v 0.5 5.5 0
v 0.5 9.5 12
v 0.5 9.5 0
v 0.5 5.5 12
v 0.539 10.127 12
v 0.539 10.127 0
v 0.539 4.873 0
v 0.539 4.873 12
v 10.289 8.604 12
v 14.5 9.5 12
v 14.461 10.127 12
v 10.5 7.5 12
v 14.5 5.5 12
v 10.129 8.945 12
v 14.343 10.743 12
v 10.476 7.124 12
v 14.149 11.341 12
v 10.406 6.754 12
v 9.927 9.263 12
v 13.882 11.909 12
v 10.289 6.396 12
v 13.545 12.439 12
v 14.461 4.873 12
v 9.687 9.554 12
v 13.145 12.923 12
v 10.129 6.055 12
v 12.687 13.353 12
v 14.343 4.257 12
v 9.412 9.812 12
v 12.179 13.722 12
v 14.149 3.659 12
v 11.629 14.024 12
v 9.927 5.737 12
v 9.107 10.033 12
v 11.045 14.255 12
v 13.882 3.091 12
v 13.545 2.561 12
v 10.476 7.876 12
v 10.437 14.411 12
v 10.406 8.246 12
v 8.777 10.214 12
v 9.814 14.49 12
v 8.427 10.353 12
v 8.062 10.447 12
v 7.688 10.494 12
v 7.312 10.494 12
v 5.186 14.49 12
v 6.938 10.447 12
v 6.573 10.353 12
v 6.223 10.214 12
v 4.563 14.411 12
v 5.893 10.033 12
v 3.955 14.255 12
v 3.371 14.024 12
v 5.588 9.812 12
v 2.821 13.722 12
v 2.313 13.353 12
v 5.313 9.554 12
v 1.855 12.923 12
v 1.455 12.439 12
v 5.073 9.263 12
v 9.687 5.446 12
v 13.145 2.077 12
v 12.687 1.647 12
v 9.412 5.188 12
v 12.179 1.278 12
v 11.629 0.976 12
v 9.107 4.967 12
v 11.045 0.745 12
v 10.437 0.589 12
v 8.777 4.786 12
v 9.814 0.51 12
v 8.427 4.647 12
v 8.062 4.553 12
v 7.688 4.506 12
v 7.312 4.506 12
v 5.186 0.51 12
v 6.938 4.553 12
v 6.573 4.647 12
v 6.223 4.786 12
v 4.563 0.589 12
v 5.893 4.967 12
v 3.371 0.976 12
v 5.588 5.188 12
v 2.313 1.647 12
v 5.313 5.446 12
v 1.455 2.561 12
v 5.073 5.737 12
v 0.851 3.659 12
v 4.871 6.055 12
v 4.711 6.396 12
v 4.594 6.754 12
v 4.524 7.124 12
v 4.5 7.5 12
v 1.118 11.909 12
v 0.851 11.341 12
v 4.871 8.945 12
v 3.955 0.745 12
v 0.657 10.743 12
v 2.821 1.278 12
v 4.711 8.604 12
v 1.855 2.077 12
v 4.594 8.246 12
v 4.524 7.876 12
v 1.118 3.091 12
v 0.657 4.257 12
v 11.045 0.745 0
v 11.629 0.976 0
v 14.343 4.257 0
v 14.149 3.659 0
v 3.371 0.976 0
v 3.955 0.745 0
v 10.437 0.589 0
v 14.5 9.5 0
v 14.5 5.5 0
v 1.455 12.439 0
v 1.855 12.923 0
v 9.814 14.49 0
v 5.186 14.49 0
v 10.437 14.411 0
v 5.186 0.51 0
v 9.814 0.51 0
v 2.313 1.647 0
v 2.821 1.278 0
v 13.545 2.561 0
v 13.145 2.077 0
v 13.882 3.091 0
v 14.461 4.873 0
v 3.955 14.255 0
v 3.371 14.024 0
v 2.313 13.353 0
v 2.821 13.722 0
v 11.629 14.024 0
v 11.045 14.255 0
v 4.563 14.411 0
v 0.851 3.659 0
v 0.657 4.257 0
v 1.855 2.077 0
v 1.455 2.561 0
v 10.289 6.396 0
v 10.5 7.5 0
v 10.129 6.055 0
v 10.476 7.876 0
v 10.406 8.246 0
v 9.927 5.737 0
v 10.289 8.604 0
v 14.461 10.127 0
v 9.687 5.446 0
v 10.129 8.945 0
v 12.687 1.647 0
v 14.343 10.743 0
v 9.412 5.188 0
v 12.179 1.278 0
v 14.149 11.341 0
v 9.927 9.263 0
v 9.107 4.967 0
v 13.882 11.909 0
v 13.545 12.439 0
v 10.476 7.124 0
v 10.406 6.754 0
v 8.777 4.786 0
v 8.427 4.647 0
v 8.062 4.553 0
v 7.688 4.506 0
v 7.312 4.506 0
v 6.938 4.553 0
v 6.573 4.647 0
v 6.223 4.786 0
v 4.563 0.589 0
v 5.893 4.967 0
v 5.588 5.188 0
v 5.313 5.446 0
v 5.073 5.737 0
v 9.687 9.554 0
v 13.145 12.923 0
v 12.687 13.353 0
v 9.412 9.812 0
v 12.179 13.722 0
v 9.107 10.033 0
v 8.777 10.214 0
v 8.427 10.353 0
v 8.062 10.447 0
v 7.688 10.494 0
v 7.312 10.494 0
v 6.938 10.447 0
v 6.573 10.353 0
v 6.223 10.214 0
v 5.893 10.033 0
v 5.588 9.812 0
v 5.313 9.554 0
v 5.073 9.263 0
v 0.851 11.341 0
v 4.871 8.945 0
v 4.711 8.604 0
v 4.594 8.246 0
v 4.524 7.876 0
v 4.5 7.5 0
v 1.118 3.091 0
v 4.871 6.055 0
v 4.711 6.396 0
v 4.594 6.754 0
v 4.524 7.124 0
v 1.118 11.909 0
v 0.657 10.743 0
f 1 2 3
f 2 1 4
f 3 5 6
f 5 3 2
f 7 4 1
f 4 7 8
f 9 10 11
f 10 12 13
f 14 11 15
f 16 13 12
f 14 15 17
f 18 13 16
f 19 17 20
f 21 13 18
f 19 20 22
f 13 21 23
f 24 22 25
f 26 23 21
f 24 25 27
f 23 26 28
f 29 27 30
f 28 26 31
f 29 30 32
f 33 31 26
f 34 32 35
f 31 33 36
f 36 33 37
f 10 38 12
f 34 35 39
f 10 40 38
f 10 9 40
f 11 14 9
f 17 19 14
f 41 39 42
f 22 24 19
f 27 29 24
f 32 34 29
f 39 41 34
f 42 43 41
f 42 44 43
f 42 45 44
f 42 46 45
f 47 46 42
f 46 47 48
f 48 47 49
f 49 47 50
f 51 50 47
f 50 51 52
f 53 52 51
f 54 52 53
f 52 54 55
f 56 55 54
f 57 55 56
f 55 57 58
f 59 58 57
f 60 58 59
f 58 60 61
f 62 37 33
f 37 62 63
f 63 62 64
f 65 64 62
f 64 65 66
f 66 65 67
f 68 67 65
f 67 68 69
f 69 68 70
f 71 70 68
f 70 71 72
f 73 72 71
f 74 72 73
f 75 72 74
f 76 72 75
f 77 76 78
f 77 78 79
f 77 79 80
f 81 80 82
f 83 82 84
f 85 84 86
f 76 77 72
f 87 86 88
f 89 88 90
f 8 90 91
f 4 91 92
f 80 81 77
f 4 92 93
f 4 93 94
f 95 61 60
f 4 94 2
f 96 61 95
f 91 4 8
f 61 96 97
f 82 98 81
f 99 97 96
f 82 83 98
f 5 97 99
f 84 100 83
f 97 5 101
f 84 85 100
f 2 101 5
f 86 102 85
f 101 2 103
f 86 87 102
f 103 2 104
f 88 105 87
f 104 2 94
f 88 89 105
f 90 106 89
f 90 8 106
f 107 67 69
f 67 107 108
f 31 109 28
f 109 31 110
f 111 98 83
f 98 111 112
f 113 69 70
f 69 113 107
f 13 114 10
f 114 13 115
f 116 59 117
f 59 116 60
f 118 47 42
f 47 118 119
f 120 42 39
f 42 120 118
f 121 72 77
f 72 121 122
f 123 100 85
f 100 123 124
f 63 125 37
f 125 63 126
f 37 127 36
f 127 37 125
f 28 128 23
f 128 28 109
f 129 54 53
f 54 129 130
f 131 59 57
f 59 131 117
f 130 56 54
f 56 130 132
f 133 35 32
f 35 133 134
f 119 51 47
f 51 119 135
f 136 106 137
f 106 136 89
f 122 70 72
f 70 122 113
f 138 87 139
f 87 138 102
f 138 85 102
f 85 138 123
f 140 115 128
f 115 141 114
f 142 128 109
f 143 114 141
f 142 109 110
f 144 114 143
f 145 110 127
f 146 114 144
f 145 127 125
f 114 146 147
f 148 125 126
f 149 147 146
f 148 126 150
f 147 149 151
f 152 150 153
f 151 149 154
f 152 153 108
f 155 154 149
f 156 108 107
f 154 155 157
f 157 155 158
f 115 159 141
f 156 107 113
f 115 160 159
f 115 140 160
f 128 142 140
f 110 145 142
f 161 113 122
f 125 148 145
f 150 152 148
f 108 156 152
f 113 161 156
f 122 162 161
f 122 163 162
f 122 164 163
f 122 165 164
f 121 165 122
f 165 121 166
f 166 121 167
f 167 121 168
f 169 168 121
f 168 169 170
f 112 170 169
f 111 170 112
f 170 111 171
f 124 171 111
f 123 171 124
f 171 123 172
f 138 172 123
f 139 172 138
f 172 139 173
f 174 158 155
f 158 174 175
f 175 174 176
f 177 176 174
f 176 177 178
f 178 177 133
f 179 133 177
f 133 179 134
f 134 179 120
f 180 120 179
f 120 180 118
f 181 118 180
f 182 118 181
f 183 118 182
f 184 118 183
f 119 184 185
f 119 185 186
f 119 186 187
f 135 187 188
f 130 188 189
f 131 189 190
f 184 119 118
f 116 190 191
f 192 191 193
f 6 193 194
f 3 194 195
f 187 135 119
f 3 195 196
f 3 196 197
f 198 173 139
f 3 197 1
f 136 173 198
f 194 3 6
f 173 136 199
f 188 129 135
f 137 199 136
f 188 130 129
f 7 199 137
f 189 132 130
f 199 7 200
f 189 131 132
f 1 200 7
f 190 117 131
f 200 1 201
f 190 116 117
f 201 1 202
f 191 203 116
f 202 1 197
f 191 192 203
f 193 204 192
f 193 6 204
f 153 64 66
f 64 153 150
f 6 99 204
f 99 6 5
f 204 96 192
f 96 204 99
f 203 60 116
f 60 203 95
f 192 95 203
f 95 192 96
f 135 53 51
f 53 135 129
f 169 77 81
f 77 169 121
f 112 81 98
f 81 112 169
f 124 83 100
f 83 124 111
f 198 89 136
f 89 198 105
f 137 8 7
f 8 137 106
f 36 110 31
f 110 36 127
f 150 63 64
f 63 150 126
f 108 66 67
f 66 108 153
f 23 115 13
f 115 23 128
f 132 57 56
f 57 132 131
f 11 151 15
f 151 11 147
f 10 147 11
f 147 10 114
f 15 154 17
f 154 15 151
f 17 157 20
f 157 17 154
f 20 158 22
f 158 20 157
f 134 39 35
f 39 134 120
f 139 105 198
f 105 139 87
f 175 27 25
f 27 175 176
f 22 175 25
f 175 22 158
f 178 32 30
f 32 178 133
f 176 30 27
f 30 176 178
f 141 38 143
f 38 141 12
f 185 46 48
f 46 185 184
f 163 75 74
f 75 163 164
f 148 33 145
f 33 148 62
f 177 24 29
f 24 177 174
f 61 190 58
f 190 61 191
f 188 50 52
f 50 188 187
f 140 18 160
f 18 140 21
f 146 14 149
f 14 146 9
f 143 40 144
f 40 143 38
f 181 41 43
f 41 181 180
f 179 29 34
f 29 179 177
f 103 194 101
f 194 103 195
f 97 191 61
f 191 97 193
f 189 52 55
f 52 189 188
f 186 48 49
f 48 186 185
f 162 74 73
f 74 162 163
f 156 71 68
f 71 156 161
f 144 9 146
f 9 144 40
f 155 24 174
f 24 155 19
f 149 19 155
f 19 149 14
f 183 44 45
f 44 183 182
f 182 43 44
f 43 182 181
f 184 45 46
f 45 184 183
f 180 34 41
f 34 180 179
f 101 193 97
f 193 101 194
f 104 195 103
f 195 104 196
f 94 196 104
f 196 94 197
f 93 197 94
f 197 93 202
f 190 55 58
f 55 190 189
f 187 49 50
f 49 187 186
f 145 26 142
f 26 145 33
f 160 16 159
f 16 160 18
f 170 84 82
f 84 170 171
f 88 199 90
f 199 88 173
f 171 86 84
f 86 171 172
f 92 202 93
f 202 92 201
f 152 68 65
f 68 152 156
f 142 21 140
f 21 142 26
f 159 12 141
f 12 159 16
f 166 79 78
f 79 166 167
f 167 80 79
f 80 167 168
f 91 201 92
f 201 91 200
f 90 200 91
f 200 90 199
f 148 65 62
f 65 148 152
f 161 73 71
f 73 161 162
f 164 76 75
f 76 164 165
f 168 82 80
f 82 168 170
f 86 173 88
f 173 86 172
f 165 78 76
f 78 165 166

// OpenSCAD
// Generated by SolidPython 1.1.3 on 2023-01-09 15:31:28
$fn = 50;


difference() {
	union() {
		translate(v = [7.5000000000, 7.5000000000, 0]) {
			rotate(a = [0, 0, 0]) {
				hull() {
					translate(v = [-2.0000000000, 2.0000000000, 0]) {
						rotate(a = [0, 0, 0]) {
							translate(v = [0, 0, 0]) {
								rotate(a = [0, 0, 0]) {
									cylinder(h = 12, r = 5);
								}
							}
						}
					}
					translate(v = [2.0000000000, 2.0000000000, 0]) {
						rotate(a = [0, 0, 0]) {
							translate(v = [0, 0, 0]) {
								rotate(a = [0, 0, 0]) {
									cylinder(h = 12, r = 5);
								}
							}
						}
					}
					translate(v = [-2.0000000000, -2.0000000000, 0]) {
						rotate(a = [0, 0, 0]) {
							translate(v = [0, 0, 0]) {
								rotate(a = [0, 0, 0]) {
									cylinder(h = 12, r = 5);
								}
							}
						}
					}
					translate(v = [2.0000000000, -2.0000000000, 0]) {
						rotate(a = [0, 0, 0]) {
							translate(v = [0, 0, 0]) {
								rotate(a = [0, 0, 0]) {
									cylinder(h = 12, r = 5);
								}
							}
						}
					}
				}
			}
		}
	}
	union() {
		translate(v = [7.5000000000, 7.5000000000, 0]) {
			rotate(a = [0, 0, 0]) {
				translate(v = [0, 0, -50]) {
					rotate(a = [0, 0, 0]) {
						cylinder(h = 100, r = 3.0000000000);
					}
				}
			}
		}
	}
}
/***********************************************
*********      SolidPython code:      **********
************************************************
 
from solid import *
import os
import subprocess

import oomB

import opsc_library_gen

mode = "laser"
#mode = "3d_print"

defined_objects = {}

radius_dict = {}
countersunk_dict = {}


def set_mode(m):
    global mode
    mode = m
    radius_dict['M6'] = 6.5/2
    radius_dict['M3'] = 3.3/2
    if mode == "laser":
        radius_dict['M6'] = 6/2
        radius_dict['M3'] = 3/2

    countersunk_dict['M3'] = {}
    countersunk_dict['M3']['little_rad'] = radius_dict['M3']
    countersunk_dict['M3']['big_rad'] = (5.5+0.6)/2
    if mode == "laser":
        countersunk_dict['M3']['big_rad'] = (4.75+0.6)/2
        countersunk_dict['M3']['little_rad'] = (4.75+0.6)/2

    countersunk_dict['M3']['height'] = 1.7


def opsc_make_object(filename, objects, save_type="none",resolution=50, layers = 1, tilediff = 200, mode="laser"):
    set_mode(mode)
    save_type = save_type.lower()
    os.makedirs(os.path.dirname(filename), exist_ok=True)
    final_object = opsc_get_object(objects)
    # Save the final object to the specified filename    
    scad_render_to_file(final_object, filename, file_header='$fn = %s;' % resolution, include_orig_code=True)
    if mode == "laser":
        filename_laser = filename.replace(".scad","-flat.scad")
        scad_render_to_file(getLaser(final_object, layers=layers, tilediff=tilediff), filename_laser, file_header='$fn = %s;' % resolution, include_orig_code=True)
        if save_type == "all":
            saveToAll(filename_laser)
        elif save_type == "dxf":
            saveToDxf(filename_laser)
    if save_type == "all":
        saveToAll(filename)
    elif save_type == "dxf":
        saveToDxf(filename)


def opsc_get_object(objects):
    # Create the solidpython objects
    positive_objects = [get_opsc_item(obj) for obj in objects if obj['type'] == 'positive']
    negative_objects = [get_opsc_item(obj) for obj in objects if obj['type'] == 'negative']
    # Union the positive objects
    positive_object = union()(*positive_objects)
    # Union the negative objects
    negative_object = union()(*negative_objects)
    # Create the final object by subtracting the negative objects from the positive objects
    return difference()(positive_object, negative_object)

def get_opsc_item(params):
    # A dictionary to map radius string values to numerical values
    #radius_dict = {'small': 5, 'medium': 10, 'large': 15}
    # An array of function names for basic shapes
    basic_shapes = ['cube', 'sphere', 'cylinder']
    
    # An array of function names for other shapes
    other_shapes = ['hole', 'slot', 'rounded_rectangle', 'countersunk']
    


    # Convert radius to r if present, and remove radius from the params dictionary
    if 'radius' in params:
        if isinstance(params['radius'], str):
            # Use the radius_dict to map the radius string value to a numerical value
            params['r'] = radius_dict[params['radius']]
        else:
            params['r'] = params['radius']
        del params['radius']
    

    # Check if the object type is a basic shape
    if params['shape'] in basic_shapes:
        # Remove shape and unexpected dictionary values
        allowed_keys = {'size', 'r', 'r1', 'r2', 'd', 'h', 'rw', 'rh', 'dw', 'dh'}
        shape_params = {k: v for k, v in params.items() if k in allowed_keys}

        # Call the corresponding function for the shape parameter, using ** notation to pass the shape_params dictionary as keyword arguments
        return get_opsc_transform(params,globals()[params['shape']](**shape_params))
    
    # If the object type is not a basic shape, check if it's a defined object or one of the other shapes
    elif params['shape'] in other_shapes:
        # Call the corresponding function for the shape parameter, passing the params dictionary as an argument
        p2 = copy.deepcopy(params)
        p2["pos"] = [0,0,0]
        return get_opsc_transform(params,globals()[params['shape']](p2))
    
    # If the object is not a basic shape or a defined object, try to import it from a .scad file
    else:
        obj = defined_objects[params['shape']]
        return get_opsc_transform(params,obj)

def get_opsc_transform(params, solid_obj):
    # Rotate the object based on the 'rot' field in the params dictionary, or the 'rotX', 'rotY', and 'rotZ' fields if 'rot' is not present
    rot = params.get('rot', [])
    if rot:
        rotX, rotY, rotZ = rot
    else:
        rotX = params.get('rotX', 0)
        rotY = params.get('rotY', 0)
        rotZ = params.get('rotZ', 0)
    solid_obj = rotate([rotX, rotY, rotZ])(solid_obj)

    # Translate the object based on the 'pos' field in the params dictionary, or the 'x', 'y', and 'z' fields if 'pos' is not present
    pos = params.get('pos', [])
    if pos:
        x, y, z = pos
    else:
        x = params.get('x', 0)
        y = params.get('y', 0)
        z = params.get('z', 0)
    solid_obj = translate([x, y, z])(solid_obj)
    return solid_obj


import random

def opsc_easy_array(type, shape, repeats, pos_start, shift_arr, **kwargs):
    for i in range(0,3):
        repeats.append(1)
        pos_start.append(0)
        shift_arr.append(0)
    return_objects = []

    for x in range(0,repeats[0]):
        for y in range(0,repeats[1]):
            for z in range(0,repeats[2]):
                return_objects.append(opsc_easy(type, shape, pos=[pos_start[0]+x*shift_arr[0],pos_start[1]+y*shift_arr[1],pos_start[2]+z*shift_arr[2]], **kwargs))
    return return_objects                



def opsc_easy(type, shape, **kwargs):
    obj = {
        'type': type,
        'shape': shape
    }
    for param in ['size', 'r', 'r1', 'r2', 'd', 'h', 'rw', 'rh', 'dw', 'dh', 'pos', 'x', 'y', 'z', 'rot', 'rotX', 'rotY', 'rotZ', "w"]:
        if param in kwargs:
            obj[param] = kwargs[param]
    return obj

def hole(params):
    p2 = copy.deepcopy(params)  
    # Check if the radius is a string and replace it with the corresponding value from the dictionary
    if isinstance(p2['r'], str):
        p2['r'] = radius_dict[p2['r']]
    
    # Set the height to 100 if not specified
    if 'h' not in p2:
        p2['h'] = 100
        p2["pos"] = [0,0,-50]
    p2["center"] = True
    # Create the cylinder object
    p2["shape"] = "cylinder"
    p2["type"] = "positive"

    return get_opsc_item(p2)

import copy

def countersunk(params):
    p2 = copy.deepcopy(params)
    counter_rad = p2['r']
    p2['r'] = radius_dict[p2['r']]
    hp = copy.deepcopy(p2)
    hp["type"] = "positive"
    hp["shape"] = "hole"
    del hp["rot"]
    hol = get_opsc_item(hp)
    
    cp = copy.deepcopy(p2)
    cp["h"] = countersunk_dict[counter_rad]["height"]
    cp["r2"] = countersunk_dict[counter_rad]["little_rad"]
    cp["r1"] = countersunk_dict[counter_rad]["big_rad"]
    del cp["r"]
    del cp["rot"]
    cp["type"] = "positive"
    cp["shape"] = "cylinder"
    cp["pos"] = [0,0,0]

    top = get_opsc_item(cp)
    return union()(hol,top)



def slot(params):  
    p2 = copy.deepcopy(params) 
    if isinstance(p2['r'], str):
        p2['r'] = radius_dict[p2['r']]
    p2["type"] = "positive"
    p2["shape"] = "hole"
    del p2["rot"]
    p2["pos"] = [0,0,0]
    left = copy.deepcopy(p2)
    right = copy.deepcopy(p2)
    left["pos"][0] = p2["w"] / 2 - p2["r"] 
    
    right["pos"][0] = -p2["w"] / 2 + p2["r"] 
    pass
    leftObj = get_opsc_item(left)
    rightObj = get_opsc_item(right)
    return hull()(leftObj, rightObj)

def rounded_rectangle(params):   
    p2 = copy.deepcopy(params) 
    p2["h"] = p2["size"][2]
    p2["pos"] = p2.get("pos", [0, 0, 0]) 
    p2["type"] = "positive"
    p2["shape"] = "hole"
    p2["pos"] = [0,0,0]
    
    if 'rot' in p2:
        del p2["rot"]   
    if 'r' not in p2:
        p2["r"] = 5 
    tl = copy.deepcopy(p2)
    tr = copy.deepcopy(p2)
    bl = copy.deepcopy(p2)
    br = copy.deepcopy(p2)
    tl["pos"][0] = -(p2["size"][0] - p2["r"]*2)/2
    tl["pos"][1] = (p2["size"][1] - p2["r"]*2)/2
    tr["pos"][0] = (p2["size"][0] - p2["r"]*2)/2
    tr["pos"][1] = (p2["size"][1] - p2["r"]*2)/2
    bl["pos"][0] = -(p2["size"][0] - p2["r"]*2)/2
    bl["pos"][1] = -(p2["size"][1] - p2["r"]*2)/2
    br["pos"][0] = (p2["size"][0] - p2["r"]*2)/2
    br["pos"][1] = -(p2["size"][1] - p2["r"]*2)/2
    del tl["size"]
    del tr["size"]
    del bl["size"]
    del br["size"]
    tlo = get_opsc_item(tl)
    tro = get_opsc_item(tr)
    blo = get_opsc_item(bl)
    bro = get_opsc_item(br)    
    return hull()(tlo, tro, blo, bro)



def import_scad_object(filename):
    # Import the .scad file and convert it to a solidpython object
    #filename = "parts"
    obj = import_scad(filename)
    return obj.main()
    


import os
import solid as solidpython

# A dictionary to store the defined objects


def load_scad_objects():
    opsc_library_gen.gen_library(defined_objects)

import random

def test(num_objects):
    objects = []
    for i in range(num_objects):
        # Choose a random shape
        #shape = random.choice(['cube', 'sphere', 'cylinder', 'hole', 'slot', "rounded_rectangle"])
        shape = random.choice(["rounded_rectangle"])

        # Choose a random type
        type = random.choice(['positive', 'negative'])
        
        # Create an empty object dictionary
        obj = {'shape': shape, 'type': type}
        
        # Set shape-specific parameters
        if obj['shape'] in ['cube']:
            obj['size'] =  [random.uniform(5, 15), random.uniform(5, 15), random.uniform(5, 15)]
        if obj['shape'] in ['rounded_rectangle']:
            obj['size'] =  [random.uniform(5, 15), random.uniform(5, 15), random.uniform(5, 15)]
            obj['r'] = random.uniform(0.5, 5)
        elif obj['shape'] == 'sphere':
            obj['r'] = random.uniform(5, 15)
        elif obj['shape'] in ['cylinder', 'hole']:
            obj['r'] = random.uniform(0.5, 5)
            obj['h'] = random.uniform(5, 15)
        elif obj['shape'] == 'slot':
            obj['r'] = random.uniform(0.5, 5)
            obj['h'] = random.uniform(5, 15)
            obj['w'] = random.uniform(5, 15)
        
        # Set a random position and rotation
        obj['pos'] = [random.uniform(-20, 20), random.uniform(-20, 20), random.uniform(-20, 20)]
        obj['rot'] = [random.uniform(-180, 180), random.uniform(-180, 180), random.uniform(-180, 180)]
        
        # Add the object to the list
        objects.append(obj)
    return objects

####### old file saving
def saveToAll(fileIn):
    saveToDxf(fileIn)
    saveToPng(fileIn)
    saveToStl(fileIn)
    saveToSvg(fileIn)

def saveToDxf(fileIn, fileOut="", copy_to_laser=True):
    if fileOut == "":
        fileOut = fileIn.replace(".scad",".dxf")
    saveToFile(fileIn, fileOut)


    
def saveToPng(fileIn, fileOut="",extra="--render"):
    if fileOut == "":
        fileOut = fileIn.replace(".scad",".png")
    saveToFile(fileIn, fileOut)

def saveToStl(fileIn, fileOut=""):
    if fileOut == "":
        fileOut = fileIn.replace(".scad",".stl")
    saveToFile(fileIn, fileOut)
    
def saveToSvg(fileIn, fileOut=""):
    if fileOut == "":
        fileOut = fileIn.replace(".scad",".svg")
    saveToFile(fileIn, fileOut)

def saveToFile(fileIn, fileOut,extra=""):
    #extra = extra + " --colorscheme Tomorrow"

    launchStr = 'openscad -o "' + fileOut + '"' + extra + ' "' + fileIn + '"'
    if ".png" in fileOut:
        launchStr = launchStr + " --render"
    print("            saveToFile launch string: " + launchStr)
    subprocess.run(launchStr)
    x=0

def getLaser(final_object,start=1.5,layers=1,thickness=3,tilediff=200):
        rv= []

        for x in range(layers):
            rv.append(translate([0,x*tilediff,0])(
                    projection()(
                        intersection()(translate([-500,-500,start+x*thickness])(cube(size=[1000,1000,0.1])),
                            final_object
                        )
                    )
            )
            )
            
        return union()(rv)

set_mode("laser")
load_scad_objects() 
 
************************************************/
